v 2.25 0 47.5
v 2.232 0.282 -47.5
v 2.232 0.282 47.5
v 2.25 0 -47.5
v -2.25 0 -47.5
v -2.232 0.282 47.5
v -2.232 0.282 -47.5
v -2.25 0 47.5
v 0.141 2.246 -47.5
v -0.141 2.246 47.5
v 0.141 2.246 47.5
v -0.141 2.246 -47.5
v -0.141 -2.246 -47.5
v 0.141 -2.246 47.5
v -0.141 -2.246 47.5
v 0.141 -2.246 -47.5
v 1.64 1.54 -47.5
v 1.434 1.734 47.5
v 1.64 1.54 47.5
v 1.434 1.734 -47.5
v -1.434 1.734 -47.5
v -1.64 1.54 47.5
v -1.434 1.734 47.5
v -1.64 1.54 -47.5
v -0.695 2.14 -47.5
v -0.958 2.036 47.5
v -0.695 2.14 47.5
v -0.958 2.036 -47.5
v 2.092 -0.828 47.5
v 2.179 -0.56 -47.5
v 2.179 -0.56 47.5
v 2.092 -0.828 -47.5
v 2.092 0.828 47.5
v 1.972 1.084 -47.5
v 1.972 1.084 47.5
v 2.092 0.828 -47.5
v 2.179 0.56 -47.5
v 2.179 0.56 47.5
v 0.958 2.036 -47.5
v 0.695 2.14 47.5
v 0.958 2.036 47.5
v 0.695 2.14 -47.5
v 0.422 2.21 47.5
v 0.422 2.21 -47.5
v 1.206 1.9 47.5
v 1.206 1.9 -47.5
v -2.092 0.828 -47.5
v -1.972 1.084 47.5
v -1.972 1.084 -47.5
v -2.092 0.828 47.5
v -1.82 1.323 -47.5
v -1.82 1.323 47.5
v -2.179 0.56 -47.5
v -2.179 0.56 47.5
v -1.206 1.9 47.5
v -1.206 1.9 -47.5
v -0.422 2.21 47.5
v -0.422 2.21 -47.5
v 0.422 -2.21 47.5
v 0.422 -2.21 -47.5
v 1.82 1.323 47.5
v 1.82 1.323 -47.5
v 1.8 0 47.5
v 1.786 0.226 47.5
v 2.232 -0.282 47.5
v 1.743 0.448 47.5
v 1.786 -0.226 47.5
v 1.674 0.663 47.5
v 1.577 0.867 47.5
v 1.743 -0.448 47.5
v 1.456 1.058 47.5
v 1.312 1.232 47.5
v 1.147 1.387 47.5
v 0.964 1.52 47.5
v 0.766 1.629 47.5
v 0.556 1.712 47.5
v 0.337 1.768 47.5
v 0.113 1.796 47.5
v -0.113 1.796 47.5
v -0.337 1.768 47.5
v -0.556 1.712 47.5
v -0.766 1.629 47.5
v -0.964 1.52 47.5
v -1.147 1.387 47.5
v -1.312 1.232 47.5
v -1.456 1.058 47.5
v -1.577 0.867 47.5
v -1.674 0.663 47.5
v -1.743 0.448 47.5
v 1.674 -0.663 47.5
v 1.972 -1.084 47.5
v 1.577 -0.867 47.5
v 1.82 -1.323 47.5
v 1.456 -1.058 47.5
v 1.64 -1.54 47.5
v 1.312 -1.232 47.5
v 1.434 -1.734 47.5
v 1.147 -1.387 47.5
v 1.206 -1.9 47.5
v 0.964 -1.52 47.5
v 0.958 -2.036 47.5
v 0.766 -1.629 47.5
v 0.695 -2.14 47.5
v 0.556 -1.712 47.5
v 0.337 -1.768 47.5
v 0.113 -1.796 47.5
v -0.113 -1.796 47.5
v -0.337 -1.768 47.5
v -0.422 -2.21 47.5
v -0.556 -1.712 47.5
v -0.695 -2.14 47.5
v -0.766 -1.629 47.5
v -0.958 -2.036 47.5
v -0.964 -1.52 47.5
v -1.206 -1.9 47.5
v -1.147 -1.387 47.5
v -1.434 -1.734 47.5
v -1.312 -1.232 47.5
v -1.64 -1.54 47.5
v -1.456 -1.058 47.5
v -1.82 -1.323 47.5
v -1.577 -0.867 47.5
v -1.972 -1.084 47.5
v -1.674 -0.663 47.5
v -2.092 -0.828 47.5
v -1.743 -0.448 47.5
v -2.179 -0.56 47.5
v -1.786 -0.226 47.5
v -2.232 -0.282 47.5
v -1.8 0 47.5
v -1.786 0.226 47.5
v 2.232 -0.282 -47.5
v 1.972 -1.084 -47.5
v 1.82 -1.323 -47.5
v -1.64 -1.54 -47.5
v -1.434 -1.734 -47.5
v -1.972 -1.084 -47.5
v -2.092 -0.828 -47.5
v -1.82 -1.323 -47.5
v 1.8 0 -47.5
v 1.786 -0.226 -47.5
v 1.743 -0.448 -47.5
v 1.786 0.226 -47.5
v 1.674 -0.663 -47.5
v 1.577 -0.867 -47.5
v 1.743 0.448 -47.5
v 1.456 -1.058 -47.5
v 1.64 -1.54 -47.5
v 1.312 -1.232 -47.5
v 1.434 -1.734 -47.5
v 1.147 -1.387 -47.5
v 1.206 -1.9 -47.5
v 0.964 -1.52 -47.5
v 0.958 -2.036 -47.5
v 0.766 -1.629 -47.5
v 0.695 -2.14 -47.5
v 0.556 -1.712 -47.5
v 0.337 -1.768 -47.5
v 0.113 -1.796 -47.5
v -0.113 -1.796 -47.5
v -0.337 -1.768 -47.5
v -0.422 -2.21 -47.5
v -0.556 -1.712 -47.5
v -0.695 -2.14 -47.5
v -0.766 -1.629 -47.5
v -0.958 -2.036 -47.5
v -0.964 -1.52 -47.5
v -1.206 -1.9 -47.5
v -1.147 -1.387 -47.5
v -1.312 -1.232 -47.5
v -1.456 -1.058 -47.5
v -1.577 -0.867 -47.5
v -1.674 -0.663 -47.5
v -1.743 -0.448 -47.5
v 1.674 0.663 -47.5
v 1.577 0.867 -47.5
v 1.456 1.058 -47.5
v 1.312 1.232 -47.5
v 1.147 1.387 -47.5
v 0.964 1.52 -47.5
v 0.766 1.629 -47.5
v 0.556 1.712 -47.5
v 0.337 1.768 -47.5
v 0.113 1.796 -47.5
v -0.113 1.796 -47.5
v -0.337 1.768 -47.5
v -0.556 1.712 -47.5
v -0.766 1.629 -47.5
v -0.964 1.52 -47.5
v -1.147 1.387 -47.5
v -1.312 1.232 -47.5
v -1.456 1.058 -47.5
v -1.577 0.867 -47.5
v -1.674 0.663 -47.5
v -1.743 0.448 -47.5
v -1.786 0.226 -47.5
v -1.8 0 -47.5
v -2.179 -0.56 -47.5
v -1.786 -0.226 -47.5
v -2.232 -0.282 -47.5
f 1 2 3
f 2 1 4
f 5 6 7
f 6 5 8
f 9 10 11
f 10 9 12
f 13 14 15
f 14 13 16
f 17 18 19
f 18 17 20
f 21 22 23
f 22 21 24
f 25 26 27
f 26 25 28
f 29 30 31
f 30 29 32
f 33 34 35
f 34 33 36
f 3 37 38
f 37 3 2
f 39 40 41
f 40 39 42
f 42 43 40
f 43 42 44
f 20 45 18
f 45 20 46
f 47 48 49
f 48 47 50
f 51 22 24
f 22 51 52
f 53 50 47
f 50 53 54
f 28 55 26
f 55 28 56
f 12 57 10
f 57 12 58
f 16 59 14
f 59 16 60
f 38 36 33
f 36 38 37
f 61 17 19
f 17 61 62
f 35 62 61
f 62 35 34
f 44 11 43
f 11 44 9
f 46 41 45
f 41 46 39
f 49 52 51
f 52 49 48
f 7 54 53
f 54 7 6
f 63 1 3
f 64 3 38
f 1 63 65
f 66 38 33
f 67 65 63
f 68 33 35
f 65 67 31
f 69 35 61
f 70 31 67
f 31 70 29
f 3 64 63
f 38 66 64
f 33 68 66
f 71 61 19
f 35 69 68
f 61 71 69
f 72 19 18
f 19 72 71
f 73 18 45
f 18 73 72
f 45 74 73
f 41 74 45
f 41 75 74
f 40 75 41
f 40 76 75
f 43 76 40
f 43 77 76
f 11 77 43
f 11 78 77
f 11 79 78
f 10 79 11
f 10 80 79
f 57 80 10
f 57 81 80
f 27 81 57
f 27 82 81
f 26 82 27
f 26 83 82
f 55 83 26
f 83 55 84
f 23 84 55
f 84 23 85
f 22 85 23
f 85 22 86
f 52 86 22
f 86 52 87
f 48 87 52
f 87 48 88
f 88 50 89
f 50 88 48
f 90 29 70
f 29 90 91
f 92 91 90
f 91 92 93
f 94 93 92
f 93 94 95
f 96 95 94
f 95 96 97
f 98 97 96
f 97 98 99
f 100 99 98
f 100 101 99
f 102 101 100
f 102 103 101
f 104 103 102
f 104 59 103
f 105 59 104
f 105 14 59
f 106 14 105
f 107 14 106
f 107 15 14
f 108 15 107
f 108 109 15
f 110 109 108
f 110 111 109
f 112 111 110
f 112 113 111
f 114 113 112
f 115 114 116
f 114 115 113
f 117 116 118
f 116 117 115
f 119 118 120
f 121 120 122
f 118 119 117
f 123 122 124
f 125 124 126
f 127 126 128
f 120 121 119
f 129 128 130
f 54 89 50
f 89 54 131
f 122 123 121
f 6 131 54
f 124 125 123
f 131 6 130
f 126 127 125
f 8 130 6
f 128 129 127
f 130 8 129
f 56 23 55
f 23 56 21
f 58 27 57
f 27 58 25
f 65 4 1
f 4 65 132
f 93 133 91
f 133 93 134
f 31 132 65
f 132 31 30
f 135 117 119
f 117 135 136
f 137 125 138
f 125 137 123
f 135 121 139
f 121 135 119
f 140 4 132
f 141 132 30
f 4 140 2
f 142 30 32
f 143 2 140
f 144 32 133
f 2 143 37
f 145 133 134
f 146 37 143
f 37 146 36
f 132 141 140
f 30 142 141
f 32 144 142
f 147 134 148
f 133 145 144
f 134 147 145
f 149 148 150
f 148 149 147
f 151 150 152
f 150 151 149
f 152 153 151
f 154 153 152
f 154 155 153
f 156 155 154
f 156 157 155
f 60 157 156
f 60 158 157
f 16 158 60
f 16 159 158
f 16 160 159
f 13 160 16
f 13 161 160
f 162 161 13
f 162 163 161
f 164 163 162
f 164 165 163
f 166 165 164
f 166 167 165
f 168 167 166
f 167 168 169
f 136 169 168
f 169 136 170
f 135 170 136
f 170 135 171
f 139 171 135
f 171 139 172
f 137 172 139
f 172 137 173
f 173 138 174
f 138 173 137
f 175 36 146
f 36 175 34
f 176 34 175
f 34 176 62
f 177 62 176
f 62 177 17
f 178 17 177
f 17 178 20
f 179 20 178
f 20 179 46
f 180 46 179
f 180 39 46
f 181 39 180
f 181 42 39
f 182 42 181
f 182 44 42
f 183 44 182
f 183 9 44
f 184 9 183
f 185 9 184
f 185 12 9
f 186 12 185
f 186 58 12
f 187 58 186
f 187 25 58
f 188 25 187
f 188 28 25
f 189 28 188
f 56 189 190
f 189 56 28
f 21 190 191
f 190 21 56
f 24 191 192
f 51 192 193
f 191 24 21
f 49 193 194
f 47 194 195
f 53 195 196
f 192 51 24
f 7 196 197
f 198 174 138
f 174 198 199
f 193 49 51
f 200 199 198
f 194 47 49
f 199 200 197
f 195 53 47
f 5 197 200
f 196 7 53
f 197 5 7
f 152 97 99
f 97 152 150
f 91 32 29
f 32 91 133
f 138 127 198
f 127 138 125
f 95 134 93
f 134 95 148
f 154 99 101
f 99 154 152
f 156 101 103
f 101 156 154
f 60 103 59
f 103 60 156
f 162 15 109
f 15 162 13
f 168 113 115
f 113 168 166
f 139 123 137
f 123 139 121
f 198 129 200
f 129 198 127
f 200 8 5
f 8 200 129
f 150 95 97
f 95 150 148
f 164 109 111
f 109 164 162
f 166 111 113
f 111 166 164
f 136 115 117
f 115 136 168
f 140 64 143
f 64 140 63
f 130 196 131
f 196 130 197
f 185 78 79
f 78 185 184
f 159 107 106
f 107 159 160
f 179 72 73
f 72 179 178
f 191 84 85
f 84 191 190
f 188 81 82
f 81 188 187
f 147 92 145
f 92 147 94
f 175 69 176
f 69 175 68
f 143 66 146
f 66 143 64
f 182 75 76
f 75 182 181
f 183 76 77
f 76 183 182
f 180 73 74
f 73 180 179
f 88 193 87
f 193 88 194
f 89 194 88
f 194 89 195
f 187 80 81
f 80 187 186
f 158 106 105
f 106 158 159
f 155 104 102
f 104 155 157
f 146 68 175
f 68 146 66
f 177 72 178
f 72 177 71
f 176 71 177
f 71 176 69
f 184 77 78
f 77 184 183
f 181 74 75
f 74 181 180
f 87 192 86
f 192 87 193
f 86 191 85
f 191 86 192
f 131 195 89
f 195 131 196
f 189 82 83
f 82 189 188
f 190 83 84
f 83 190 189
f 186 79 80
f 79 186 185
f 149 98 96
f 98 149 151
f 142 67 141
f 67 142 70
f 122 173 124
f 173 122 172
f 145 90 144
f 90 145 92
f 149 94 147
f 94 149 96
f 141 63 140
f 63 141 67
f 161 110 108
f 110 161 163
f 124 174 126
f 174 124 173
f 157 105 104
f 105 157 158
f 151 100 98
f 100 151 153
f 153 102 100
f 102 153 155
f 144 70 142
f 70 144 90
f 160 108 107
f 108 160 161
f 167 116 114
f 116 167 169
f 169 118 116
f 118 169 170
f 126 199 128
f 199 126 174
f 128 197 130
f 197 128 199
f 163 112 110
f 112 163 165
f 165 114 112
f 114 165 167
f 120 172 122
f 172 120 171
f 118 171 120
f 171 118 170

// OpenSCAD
$fn = 50;


difference() {
	union() {
		translate(v = [0, 0, -47.5000000000]) {
			cylinder(h = 95, r = 2.2500000000);
		}
	}
	union() {
		translate(v = [0, 0, -100.0000000000]) {
			cylinder(h = 200, r = 1.8000000000);
		}
	}
}
